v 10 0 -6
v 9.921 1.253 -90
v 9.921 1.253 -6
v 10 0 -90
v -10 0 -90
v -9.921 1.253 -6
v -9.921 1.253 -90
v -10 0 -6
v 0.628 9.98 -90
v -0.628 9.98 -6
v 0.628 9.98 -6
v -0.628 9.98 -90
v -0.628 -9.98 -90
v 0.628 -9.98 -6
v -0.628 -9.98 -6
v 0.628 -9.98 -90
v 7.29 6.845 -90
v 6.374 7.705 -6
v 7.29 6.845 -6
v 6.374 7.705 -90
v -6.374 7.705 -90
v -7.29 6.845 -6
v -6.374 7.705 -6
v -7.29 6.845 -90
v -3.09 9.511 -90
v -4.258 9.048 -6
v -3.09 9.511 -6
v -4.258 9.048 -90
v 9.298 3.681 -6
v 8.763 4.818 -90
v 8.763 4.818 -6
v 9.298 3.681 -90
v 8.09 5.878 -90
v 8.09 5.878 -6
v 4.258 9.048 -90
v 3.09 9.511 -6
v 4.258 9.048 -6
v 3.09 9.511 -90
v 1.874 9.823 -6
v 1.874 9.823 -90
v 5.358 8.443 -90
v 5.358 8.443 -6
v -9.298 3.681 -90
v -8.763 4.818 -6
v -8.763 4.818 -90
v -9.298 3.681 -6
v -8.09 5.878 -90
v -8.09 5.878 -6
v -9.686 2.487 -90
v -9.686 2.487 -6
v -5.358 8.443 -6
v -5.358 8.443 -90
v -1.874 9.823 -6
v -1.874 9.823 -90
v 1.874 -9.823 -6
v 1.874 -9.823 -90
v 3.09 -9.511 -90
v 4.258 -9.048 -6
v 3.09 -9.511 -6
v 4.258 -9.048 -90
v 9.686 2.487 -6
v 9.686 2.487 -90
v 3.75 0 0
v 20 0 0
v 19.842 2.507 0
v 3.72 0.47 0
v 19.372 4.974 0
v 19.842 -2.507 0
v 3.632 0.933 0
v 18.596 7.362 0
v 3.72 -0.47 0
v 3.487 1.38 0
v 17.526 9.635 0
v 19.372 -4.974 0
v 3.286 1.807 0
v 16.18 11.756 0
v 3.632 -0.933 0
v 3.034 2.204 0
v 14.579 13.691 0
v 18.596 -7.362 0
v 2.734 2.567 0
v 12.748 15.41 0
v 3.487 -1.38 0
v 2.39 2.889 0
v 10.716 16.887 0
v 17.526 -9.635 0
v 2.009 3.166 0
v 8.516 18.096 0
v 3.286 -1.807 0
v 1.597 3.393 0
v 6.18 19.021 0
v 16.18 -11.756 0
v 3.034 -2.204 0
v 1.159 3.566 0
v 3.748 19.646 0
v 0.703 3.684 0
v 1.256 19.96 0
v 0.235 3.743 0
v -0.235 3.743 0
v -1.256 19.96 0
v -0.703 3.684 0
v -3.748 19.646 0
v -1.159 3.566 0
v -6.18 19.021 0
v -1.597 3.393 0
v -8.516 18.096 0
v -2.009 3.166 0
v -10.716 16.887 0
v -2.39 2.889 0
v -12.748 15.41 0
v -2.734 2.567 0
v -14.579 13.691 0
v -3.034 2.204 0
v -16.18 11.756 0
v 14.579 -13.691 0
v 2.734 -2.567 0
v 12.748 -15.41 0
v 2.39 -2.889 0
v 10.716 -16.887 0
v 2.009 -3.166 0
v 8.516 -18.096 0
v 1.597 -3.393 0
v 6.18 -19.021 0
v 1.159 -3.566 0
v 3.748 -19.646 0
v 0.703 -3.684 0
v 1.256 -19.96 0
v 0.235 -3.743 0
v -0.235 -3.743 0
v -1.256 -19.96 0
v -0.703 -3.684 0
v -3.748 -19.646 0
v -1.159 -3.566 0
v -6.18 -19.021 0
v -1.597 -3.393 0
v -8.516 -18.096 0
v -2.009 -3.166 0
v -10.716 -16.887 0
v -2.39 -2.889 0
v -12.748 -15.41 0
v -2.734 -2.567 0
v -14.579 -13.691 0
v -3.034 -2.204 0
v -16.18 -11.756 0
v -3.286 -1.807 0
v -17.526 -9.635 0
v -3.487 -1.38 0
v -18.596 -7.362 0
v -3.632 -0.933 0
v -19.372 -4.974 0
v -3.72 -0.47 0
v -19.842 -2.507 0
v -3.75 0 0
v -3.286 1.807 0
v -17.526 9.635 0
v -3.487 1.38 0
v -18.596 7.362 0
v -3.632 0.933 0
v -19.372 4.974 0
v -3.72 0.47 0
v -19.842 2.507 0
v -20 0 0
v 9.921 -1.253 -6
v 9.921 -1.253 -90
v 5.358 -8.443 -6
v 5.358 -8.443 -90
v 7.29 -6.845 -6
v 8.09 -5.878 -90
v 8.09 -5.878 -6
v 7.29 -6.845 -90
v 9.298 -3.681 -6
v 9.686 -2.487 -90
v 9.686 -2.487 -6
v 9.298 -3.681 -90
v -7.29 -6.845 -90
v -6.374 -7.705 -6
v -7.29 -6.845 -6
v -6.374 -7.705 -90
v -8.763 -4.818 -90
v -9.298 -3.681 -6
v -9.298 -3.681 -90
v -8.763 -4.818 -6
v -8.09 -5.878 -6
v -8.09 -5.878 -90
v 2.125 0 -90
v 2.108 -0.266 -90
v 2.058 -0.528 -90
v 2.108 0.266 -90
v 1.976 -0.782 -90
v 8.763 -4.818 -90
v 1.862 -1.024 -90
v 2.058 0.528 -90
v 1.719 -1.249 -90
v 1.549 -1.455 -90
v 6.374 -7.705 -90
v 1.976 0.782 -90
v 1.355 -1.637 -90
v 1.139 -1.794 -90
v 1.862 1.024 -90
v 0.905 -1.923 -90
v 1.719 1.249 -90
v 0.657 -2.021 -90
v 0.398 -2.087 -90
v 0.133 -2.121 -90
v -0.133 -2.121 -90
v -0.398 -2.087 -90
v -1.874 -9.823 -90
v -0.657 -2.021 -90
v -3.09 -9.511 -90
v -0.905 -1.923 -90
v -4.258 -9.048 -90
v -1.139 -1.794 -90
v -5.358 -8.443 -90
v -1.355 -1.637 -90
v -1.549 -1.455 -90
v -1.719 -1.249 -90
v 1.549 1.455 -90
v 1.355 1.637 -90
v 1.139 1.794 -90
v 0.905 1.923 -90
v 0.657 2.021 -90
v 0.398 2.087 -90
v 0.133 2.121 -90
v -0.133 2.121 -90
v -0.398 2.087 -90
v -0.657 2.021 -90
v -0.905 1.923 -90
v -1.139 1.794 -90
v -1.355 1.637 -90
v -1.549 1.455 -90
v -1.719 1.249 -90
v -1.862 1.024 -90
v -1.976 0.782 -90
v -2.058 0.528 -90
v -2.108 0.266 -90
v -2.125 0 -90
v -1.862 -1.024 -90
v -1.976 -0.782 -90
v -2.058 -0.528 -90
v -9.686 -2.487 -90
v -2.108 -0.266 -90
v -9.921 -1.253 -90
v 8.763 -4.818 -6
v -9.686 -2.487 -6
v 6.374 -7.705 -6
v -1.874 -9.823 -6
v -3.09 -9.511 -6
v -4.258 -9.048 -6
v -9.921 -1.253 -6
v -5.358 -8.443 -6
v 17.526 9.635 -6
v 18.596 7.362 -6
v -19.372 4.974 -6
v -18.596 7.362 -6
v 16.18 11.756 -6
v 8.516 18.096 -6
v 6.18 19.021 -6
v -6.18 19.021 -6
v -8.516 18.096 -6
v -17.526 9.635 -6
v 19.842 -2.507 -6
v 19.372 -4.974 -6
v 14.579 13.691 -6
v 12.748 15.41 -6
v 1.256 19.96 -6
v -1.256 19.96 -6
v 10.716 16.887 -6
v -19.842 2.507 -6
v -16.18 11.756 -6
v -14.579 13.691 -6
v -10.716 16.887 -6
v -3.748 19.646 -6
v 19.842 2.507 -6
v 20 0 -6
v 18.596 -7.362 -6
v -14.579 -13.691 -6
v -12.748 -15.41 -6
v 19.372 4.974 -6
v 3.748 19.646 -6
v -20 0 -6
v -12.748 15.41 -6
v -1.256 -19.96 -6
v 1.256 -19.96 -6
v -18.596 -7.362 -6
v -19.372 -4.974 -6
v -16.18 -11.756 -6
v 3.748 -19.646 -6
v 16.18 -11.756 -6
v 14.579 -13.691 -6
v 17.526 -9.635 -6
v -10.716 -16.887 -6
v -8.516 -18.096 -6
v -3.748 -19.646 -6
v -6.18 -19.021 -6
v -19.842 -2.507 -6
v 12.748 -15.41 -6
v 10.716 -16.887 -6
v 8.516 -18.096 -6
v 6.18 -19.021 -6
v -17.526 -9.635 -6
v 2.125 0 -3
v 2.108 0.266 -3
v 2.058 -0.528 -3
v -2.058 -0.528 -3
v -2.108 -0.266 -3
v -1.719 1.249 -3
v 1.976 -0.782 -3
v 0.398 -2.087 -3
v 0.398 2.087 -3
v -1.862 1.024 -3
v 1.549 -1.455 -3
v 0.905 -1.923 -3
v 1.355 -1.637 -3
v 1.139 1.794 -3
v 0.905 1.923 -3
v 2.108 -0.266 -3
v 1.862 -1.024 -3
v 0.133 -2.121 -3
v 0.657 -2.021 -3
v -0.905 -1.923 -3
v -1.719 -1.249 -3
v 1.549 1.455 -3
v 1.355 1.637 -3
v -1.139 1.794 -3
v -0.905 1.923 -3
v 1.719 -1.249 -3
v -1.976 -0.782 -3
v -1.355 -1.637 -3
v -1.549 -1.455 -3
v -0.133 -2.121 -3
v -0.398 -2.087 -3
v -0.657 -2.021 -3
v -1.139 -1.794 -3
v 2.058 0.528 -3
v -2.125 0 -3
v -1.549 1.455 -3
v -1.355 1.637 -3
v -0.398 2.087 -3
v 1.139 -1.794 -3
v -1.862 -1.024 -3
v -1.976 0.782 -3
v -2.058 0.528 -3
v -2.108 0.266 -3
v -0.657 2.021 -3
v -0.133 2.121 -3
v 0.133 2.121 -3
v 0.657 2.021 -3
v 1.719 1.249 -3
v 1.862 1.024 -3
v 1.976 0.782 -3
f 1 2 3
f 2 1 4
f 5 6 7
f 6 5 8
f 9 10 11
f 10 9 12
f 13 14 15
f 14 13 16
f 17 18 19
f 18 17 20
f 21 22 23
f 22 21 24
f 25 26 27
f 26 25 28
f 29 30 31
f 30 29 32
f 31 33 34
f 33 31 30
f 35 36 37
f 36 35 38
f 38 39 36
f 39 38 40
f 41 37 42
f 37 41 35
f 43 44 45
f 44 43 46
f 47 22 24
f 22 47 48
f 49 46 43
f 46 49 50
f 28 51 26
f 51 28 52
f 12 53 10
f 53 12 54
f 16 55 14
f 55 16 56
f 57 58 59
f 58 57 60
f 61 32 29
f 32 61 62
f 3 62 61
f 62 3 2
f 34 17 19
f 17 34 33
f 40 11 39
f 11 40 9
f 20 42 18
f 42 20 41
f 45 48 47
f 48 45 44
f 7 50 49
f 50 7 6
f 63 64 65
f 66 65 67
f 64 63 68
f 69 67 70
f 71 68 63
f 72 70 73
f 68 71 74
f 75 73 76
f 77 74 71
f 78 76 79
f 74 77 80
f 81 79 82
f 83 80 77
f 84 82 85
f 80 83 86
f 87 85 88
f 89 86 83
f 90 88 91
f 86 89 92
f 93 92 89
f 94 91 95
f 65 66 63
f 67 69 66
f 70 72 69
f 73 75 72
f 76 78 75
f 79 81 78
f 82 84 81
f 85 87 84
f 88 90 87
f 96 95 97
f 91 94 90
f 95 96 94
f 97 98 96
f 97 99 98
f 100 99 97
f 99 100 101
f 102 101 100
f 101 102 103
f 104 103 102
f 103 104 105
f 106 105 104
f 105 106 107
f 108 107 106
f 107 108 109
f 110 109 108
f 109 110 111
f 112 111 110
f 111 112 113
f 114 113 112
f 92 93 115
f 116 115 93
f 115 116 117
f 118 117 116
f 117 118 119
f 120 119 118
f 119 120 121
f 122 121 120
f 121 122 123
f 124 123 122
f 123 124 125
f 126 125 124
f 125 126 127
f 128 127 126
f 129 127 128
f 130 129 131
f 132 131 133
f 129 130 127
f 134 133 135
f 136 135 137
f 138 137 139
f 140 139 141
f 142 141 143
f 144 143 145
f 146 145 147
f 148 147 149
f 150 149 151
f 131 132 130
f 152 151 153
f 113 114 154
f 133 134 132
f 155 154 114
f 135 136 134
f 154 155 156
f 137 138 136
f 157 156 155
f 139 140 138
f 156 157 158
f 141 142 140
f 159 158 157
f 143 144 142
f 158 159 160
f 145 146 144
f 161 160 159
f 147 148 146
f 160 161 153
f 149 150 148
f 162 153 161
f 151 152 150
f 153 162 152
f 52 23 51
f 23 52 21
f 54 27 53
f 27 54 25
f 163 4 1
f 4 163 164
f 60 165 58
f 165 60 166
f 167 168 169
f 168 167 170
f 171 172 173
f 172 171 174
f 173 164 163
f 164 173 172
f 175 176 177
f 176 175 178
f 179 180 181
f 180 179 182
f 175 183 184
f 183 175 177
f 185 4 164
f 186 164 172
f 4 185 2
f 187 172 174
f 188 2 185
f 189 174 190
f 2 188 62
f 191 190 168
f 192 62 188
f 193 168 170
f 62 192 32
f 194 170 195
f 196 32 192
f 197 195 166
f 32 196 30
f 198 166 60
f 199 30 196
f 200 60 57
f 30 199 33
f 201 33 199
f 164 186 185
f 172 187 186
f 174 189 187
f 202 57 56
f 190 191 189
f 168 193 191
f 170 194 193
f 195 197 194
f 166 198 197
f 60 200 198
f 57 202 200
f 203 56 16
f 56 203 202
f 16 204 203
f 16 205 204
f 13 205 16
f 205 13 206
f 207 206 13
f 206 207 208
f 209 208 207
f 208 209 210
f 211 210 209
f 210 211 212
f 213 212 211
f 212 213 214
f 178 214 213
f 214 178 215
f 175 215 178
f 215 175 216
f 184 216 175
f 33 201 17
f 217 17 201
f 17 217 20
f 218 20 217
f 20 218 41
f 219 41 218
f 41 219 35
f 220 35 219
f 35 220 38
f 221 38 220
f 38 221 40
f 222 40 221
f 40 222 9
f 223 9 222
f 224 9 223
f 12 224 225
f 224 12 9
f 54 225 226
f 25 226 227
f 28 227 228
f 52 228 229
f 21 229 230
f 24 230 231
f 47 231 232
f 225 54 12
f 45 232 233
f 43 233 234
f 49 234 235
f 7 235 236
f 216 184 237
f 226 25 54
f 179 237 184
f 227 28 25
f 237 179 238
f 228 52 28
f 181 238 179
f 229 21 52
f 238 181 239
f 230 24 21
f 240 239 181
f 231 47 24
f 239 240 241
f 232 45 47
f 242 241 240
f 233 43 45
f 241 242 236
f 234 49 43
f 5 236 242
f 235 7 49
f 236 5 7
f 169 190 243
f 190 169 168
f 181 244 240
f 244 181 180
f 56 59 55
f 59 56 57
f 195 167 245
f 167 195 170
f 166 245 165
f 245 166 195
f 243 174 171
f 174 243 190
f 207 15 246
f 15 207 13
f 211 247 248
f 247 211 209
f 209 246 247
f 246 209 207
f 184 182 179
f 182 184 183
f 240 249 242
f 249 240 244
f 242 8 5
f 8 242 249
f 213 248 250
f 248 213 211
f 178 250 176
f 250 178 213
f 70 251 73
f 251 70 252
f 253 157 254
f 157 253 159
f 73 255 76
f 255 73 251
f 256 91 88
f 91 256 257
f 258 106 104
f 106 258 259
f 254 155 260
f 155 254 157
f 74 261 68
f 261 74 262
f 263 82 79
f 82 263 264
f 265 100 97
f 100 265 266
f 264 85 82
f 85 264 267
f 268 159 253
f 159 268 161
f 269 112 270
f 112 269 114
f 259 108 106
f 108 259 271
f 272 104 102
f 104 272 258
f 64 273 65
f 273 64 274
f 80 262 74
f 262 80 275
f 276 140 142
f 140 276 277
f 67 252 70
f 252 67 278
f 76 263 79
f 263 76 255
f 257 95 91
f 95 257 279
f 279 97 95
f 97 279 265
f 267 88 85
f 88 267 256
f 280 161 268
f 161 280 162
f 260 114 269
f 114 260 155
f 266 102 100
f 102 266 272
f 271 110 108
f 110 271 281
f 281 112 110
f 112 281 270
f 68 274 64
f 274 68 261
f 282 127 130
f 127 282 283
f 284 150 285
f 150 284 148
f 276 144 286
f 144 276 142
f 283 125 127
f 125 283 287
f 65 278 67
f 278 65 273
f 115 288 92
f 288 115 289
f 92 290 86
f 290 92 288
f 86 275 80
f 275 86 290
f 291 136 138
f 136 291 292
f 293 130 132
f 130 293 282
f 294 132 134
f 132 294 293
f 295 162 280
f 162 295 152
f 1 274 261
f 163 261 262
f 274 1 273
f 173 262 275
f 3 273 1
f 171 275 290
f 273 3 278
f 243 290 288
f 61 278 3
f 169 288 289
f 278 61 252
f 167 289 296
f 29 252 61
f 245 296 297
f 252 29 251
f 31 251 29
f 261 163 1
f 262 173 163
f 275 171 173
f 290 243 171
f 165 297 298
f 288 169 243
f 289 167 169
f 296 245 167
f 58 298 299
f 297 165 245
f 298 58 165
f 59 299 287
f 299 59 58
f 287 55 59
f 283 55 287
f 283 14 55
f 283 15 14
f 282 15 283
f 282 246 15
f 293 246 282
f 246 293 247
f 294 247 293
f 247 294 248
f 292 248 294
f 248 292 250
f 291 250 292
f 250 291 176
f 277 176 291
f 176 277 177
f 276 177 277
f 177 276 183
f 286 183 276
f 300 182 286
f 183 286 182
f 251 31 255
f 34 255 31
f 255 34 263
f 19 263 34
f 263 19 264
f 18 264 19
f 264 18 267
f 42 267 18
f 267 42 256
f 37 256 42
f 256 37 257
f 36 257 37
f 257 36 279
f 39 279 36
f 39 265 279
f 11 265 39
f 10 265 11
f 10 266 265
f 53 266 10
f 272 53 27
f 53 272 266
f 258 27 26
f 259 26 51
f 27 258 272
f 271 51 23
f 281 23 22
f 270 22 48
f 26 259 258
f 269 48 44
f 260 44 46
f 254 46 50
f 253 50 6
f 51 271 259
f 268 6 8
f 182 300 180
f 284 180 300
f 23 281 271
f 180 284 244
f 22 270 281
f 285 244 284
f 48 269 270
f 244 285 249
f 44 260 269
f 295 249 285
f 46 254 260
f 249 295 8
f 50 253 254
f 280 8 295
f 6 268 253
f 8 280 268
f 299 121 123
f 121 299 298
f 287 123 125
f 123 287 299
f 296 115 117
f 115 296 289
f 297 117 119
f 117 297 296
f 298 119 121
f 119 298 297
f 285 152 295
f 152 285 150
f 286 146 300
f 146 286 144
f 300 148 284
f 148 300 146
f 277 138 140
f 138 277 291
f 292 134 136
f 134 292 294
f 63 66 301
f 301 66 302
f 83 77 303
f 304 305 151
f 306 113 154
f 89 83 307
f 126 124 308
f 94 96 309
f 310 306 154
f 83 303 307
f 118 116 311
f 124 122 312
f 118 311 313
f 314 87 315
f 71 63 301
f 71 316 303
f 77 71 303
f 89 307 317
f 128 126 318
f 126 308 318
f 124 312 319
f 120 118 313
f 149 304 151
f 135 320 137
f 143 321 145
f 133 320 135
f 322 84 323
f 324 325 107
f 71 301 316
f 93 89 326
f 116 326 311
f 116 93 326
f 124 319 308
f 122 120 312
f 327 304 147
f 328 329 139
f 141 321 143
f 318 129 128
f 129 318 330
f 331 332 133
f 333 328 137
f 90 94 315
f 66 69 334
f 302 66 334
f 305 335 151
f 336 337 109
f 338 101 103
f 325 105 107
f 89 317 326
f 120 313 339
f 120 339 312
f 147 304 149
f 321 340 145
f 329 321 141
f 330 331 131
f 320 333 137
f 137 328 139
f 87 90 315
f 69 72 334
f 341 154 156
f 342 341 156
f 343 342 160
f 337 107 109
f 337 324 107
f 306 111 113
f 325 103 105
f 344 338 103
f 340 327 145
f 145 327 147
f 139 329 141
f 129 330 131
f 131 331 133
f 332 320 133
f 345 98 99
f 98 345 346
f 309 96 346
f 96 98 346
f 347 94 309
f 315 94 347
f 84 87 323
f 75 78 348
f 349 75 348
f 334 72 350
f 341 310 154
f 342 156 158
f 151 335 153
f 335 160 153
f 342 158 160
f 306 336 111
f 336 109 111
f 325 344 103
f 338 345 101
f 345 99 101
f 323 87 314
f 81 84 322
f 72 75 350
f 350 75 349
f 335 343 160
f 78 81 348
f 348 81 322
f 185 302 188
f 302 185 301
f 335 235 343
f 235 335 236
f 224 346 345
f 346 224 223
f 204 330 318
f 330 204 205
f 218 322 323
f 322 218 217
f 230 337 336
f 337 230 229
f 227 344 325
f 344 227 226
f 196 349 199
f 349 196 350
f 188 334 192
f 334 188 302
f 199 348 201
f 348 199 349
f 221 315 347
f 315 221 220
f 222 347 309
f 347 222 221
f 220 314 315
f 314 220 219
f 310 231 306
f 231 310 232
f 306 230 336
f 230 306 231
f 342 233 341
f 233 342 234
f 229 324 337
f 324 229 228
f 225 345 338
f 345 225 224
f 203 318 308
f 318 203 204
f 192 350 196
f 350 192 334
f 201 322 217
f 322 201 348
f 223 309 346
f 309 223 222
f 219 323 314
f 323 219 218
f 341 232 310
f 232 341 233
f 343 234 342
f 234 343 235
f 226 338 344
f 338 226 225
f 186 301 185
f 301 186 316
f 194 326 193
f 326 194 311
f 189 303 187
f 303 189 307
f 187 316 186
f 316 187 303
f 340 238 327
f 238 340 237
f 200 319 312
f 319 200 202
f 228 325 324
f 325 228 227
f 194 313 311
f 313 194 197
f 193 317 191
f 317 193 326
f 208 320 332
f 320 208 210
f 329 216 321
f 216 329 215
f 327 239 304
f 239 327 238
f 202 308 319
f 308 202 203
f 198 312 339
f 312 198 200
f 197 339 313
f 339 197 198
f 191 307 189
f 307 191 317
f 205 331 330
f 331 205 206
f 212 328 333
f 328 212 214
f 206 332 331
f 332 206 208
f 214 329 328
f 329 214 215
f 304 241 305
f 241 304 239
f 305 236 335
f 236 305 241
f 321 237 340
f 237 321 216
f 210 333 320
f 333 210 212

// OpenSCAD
$fn = 50;


difference() {
	union() {
		translate(v = [0, 0, -90.0000000000]) {
			cylinder(h = 90, r = 10.0000000000);
		}
		translate(v = [0, 0, -6.0000000000]) {
			cylinder(h = 6, r = 20.0000000000);
		}
	}
	union() {
		translate(v = [0, 0, 0]) {
			rotate(a = [0, 0, 0]) {
				difference() {
					union() {
						#translate(v = [0, 0, -90.0000000000]) {
							cylinder(h = 90, r = 2.0000000000);
						}
						#translate(v = [0, 0, -3]) {
							cylinder(h = 3, r1 = 2.1250000000, r2 = 3.7500000000);
						}
						#translate(v = [0, 0, -90.0000000000]) {
							cylinder(h = 90, r = 2.1250000000);
						}
						#translate(v = [0, 0, -90.0000000000]) {
							cylinder(h = 90, r = 2.0000000000);
						}
					}
					union();
				}
			}
		}
	}
}
